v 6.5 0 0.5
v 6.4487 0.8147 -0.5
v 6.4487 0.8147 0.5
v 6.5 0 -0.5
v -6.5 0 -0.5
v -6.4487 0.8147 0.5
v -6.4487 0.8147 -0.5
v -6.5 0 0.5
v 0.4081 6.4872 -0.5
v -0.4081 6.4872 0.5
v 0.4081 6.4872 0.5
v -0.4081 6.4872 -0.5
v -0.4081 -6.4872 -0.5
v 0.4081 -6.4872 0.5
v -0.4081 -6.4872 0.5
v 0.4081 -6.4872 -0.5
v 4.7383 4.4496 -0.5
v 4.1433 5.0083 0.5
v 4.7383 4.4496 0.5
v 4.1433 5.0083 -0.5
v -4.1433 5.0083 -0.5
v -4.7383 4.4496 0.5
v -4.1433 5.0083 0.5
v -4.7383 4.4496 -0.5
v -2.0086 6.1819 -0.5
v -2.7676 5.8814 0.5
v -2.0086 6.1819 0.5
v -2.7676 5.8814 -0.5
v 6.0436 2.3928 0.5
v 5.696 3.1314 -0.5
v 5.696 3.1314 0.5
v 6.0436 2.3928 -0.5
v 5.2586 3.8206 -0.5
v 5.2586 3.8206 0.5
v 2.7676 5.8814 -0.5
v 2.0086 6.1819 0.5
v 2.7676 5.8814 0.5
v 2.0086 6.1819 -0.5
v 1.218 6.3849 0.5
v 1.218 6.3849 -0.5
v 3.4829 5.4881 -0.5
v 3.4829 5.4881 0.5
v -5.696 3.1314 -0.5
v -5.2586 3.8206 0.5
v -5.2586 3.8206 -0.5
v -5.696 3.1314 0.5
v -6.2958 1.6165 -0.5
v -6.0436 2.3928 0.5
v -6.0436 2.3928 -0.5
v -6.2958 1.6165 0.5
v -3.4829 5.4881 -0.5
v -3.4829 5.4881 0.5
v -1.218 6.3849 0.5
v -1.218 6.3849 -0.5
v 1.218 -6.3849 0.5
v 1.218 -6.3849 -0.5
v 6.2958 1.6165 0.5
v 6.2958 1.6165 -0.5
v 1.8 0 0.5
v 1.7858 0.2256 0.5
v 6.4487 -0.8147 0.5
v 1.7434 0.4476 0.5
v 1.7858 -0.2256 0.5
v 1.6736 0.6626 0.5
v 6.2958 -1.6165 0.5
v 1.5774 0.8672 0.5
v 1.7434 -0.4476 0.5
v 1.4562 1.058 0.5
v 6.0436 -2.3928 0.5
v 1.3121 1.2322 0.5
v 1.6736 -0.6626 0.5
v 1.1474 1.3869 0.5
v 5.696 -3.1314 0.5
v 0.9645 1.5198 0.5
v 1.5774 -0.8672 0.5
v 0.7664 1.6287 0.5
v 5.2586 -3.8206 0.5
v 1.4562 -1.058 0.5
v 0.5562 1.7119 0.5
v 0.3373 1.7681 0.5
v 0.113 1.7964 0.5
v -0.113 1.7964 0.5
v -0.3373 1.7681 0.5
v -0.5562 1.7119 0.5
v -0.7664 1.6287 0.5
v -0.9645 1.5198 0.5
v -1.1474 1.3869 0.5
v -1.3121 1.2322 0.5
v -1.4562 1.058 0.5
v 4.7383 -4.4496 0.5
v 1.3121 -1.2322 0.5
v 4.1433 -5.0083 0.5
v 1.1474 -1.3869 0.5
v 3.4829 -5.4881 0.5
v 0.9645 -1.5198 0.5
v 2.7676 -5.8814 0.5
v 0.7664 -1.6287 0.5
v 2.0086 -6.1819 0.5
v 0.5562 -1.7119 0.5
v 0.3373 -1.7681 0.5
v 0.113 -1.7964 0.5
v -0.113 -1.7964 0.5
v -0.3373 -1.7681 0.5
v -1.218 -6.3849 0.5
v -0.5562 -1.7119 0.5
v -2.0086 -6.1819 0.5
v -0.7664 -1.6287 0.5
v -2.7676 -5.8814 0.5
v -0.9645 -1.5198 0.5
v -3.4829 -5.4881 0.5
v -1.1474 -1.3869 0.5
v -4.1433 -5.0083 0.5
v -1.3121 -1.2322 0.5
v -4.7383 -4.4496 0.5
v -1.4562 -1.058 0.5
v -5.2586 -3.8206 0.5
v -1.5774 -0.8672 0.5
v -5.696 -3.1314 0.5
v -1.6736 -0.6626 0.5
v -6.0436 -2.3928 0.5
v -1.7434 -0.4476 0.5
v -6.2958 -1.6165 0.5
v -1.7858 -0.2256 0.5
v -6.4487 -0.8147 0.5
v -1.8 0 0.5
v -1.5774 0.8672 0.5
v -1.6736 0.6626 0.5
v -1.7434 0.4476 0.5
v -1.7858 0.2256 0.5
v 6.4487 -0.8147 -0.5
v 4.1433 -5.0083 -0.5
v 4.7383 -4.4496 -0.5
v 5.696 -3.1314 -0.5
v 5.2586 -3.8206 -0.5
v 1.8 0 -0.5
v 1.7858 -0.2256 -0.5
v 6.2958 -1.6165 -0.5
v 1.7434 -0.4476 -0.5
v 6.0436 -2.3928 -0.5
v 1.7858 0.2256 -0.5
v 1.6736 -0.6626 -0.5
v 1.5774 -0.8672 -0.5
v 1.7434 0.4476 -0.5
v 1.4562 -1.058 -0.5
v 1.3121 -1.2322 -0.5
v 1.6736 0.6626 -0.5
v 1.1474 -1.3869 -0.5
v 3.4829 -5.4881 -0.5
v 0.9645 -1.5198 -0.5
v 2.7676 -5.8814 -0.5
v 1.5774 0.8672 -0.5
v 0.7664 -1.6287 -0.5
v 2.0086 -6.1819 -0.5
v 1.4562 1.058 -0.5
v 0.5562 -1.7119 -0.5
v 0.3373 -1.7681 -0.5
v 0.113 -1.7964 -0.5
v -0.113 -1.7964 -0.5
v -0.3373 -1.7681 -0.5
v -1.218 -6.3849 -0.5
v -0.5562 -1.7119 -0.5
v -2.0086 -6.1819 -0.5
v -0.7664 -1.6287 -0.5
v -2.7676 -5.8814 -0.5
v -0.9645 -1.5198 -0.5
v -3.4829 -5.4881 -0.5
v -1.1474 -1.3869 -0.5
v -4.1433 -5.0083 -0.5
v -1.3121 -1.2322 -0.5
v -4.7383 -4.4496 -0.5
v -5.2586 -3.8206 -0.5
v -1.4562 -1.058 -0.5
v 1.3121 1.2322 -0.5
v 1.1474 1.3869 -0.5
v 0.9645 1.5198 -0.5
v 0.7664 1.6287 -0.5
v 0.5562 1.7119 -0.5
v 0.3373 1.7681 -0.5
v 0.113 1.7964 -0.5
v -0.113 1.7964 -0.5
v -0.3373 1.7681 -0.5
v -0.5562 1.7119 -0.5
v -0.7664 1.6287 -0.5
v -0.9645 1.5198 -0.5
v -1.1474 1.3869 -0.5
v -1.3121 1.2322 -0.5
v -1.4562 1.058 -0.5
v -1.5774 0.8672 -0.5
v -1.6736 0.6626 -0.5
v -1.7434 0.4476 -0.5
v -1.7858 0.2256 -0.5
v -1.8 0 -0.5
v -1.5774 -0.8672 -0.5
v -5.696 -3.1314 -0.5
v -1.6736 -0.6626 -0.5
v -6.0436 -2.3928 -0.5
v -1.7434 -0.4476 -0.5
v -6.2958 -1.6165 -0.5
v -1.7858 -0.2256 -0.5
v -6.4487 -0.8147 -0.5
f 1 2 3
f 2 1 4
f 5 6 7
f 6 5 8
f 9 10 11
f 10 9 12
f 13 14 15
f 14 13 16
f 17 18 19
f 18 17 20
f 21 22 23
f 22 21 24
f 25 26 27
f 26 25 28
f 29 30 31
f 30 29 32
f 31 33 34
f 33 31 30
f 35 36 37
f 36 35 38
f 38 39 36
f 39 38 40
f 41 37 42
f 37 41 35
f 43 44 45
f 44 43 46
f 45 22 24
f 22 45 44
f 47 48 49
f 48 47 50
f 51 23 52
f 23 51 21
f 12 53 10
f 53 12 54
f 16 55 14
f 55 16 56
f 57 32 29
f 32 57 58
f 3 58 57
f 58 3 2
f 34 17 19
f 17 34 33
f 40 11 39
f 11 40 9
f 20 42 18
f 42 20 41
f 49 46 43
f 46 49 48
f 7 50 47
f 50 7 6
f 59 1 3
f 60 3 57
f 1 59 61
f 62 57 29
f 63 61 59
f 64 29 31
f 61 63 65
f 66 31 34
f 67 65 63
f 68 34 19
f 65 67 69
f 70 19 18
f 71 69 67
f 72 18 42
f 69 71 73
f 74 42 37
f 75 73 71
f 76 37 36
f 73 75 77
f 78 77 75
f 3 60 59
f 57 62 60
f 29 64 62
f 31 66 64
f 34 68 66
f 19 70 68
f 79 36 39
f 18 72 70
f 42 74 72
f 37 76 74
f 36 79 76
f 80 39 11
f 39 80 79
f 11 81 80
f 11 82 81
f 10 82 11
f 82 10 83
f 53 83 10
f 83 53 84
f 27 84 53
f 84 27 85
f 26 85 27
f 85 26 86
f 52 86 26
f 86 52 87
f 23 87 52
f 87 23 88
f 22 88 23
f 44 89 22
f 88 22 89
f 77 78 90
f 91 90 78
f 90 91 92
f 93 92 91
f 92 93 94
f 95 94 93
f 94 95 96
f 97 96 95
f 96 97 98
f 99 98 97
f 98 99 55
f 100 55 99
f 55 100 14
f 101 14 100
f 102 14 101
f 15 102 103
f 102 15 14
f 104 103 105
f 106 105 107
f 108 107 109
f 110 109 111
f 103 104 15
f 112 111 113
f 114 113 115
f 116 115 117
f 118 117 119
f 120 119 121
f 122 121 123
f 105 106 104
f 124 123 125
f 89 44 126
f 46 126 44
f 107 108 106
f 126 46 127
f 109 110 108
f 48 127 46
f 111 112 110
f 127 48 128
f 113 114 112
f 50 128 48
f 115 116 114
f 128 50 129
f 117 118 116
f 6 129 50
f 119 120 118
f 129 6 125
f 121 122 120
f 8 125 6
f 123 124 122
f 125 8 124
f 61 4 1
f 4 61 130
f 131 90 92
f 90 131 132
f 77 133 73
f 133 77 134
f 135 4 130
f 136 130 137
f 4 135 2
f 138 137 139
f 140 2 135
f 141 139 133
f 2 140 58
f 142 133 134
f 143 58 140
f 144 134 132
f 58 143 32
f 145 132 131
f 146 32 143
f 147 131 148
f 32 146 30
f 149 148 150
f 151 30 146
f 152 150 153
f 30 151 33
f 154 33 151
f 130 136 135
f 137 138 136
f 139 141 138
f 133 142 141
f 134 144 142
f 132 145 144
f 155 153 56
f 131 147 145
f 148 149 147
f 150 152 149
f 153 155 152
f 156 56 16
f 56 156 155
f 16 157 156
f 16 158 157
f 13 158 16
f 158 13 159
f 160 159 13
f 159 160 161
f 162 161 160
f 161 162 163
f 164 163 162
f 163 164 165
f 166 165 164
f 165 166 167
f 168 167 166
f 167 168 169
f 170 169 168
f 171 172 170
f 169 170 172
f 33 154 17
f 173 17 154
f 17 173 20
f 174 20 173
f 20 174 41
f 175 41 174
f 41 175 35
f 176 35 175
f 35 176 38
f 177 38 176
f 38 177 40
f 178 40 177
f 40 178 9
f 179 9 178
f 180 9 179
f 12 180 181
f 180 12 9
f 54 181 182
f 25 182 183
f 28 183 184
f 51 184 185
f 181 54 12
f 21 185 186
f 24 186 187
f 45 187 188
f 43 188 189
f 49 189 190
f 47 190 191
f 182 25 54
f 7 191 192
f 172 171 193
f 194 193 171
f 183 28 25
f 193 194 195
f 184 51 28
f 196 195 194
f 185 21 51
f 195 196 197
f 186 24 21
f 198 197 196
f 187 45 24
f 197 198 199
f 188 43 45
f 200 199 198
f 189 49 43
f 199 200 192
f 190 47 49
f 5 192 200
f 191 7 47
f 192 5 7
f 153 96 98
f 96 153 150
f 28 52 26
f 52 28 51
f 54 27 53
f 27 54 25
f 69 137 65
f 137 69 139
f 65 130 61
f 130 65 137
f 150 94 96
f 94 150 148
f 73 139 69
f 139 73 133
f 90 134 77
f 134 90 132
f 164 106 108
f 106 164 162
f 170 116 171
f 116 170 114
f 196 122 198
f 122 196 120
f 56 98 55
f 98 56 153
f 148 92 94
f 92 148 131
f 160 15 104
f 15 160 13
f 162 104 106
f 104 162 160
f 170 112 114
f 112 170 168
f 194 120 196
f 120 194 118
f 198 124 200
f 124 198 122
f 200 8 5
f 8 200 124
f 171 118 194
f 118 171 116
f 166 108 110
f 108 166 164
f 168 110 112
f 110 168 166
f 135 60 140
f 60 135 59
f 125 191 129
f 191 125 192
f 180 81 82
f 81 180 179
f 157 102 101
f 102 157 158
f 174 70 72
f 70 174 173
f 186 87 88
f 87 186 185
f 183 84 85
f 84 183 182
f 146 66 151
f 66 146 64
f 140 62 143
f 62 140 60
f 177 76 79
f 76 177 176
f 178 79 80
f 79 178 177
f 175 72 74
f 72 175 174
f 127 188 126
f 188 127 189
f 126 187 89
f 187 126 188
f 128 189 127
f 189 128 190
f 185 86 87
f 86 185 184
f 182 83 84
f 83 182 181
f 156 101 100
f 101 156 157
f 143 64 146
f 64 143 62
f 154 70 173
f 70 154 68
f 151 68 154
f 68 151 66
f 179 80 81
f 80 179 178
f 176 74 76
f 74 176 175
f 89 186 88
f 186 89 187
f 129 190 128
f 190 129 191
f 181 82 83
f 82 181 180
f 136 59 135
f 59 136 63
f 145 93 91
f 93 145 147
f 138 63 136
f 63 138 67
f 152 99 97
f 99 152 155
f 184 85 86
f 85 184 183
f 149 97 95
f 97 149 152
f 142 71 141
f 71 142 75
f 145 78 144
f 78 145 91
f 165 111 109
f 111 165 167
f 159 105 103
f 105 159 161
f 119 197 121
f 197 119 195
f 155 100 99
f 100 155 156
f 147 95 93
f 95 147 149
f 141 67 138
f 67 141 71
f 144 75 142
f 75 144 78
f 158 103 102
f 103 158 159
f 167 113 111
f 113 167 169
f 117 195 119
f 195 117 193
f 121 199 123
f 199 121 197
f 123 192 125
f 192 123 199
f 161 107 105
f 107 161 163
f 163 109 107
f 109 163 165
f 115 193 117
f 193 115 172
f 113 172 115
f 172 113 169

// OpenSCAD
$fn = 50;


difference() {
	union() {
		translate(v = [0, 0, -0.5000000000]) {
			cylinder(h = 1, r = 6.5000000000);
		}
	}
	union() {
		translate(v = [0, 0, -100.0000000000]) {
			cylinder(h = 200, r = 1.8000000000);
		}
	}
}
